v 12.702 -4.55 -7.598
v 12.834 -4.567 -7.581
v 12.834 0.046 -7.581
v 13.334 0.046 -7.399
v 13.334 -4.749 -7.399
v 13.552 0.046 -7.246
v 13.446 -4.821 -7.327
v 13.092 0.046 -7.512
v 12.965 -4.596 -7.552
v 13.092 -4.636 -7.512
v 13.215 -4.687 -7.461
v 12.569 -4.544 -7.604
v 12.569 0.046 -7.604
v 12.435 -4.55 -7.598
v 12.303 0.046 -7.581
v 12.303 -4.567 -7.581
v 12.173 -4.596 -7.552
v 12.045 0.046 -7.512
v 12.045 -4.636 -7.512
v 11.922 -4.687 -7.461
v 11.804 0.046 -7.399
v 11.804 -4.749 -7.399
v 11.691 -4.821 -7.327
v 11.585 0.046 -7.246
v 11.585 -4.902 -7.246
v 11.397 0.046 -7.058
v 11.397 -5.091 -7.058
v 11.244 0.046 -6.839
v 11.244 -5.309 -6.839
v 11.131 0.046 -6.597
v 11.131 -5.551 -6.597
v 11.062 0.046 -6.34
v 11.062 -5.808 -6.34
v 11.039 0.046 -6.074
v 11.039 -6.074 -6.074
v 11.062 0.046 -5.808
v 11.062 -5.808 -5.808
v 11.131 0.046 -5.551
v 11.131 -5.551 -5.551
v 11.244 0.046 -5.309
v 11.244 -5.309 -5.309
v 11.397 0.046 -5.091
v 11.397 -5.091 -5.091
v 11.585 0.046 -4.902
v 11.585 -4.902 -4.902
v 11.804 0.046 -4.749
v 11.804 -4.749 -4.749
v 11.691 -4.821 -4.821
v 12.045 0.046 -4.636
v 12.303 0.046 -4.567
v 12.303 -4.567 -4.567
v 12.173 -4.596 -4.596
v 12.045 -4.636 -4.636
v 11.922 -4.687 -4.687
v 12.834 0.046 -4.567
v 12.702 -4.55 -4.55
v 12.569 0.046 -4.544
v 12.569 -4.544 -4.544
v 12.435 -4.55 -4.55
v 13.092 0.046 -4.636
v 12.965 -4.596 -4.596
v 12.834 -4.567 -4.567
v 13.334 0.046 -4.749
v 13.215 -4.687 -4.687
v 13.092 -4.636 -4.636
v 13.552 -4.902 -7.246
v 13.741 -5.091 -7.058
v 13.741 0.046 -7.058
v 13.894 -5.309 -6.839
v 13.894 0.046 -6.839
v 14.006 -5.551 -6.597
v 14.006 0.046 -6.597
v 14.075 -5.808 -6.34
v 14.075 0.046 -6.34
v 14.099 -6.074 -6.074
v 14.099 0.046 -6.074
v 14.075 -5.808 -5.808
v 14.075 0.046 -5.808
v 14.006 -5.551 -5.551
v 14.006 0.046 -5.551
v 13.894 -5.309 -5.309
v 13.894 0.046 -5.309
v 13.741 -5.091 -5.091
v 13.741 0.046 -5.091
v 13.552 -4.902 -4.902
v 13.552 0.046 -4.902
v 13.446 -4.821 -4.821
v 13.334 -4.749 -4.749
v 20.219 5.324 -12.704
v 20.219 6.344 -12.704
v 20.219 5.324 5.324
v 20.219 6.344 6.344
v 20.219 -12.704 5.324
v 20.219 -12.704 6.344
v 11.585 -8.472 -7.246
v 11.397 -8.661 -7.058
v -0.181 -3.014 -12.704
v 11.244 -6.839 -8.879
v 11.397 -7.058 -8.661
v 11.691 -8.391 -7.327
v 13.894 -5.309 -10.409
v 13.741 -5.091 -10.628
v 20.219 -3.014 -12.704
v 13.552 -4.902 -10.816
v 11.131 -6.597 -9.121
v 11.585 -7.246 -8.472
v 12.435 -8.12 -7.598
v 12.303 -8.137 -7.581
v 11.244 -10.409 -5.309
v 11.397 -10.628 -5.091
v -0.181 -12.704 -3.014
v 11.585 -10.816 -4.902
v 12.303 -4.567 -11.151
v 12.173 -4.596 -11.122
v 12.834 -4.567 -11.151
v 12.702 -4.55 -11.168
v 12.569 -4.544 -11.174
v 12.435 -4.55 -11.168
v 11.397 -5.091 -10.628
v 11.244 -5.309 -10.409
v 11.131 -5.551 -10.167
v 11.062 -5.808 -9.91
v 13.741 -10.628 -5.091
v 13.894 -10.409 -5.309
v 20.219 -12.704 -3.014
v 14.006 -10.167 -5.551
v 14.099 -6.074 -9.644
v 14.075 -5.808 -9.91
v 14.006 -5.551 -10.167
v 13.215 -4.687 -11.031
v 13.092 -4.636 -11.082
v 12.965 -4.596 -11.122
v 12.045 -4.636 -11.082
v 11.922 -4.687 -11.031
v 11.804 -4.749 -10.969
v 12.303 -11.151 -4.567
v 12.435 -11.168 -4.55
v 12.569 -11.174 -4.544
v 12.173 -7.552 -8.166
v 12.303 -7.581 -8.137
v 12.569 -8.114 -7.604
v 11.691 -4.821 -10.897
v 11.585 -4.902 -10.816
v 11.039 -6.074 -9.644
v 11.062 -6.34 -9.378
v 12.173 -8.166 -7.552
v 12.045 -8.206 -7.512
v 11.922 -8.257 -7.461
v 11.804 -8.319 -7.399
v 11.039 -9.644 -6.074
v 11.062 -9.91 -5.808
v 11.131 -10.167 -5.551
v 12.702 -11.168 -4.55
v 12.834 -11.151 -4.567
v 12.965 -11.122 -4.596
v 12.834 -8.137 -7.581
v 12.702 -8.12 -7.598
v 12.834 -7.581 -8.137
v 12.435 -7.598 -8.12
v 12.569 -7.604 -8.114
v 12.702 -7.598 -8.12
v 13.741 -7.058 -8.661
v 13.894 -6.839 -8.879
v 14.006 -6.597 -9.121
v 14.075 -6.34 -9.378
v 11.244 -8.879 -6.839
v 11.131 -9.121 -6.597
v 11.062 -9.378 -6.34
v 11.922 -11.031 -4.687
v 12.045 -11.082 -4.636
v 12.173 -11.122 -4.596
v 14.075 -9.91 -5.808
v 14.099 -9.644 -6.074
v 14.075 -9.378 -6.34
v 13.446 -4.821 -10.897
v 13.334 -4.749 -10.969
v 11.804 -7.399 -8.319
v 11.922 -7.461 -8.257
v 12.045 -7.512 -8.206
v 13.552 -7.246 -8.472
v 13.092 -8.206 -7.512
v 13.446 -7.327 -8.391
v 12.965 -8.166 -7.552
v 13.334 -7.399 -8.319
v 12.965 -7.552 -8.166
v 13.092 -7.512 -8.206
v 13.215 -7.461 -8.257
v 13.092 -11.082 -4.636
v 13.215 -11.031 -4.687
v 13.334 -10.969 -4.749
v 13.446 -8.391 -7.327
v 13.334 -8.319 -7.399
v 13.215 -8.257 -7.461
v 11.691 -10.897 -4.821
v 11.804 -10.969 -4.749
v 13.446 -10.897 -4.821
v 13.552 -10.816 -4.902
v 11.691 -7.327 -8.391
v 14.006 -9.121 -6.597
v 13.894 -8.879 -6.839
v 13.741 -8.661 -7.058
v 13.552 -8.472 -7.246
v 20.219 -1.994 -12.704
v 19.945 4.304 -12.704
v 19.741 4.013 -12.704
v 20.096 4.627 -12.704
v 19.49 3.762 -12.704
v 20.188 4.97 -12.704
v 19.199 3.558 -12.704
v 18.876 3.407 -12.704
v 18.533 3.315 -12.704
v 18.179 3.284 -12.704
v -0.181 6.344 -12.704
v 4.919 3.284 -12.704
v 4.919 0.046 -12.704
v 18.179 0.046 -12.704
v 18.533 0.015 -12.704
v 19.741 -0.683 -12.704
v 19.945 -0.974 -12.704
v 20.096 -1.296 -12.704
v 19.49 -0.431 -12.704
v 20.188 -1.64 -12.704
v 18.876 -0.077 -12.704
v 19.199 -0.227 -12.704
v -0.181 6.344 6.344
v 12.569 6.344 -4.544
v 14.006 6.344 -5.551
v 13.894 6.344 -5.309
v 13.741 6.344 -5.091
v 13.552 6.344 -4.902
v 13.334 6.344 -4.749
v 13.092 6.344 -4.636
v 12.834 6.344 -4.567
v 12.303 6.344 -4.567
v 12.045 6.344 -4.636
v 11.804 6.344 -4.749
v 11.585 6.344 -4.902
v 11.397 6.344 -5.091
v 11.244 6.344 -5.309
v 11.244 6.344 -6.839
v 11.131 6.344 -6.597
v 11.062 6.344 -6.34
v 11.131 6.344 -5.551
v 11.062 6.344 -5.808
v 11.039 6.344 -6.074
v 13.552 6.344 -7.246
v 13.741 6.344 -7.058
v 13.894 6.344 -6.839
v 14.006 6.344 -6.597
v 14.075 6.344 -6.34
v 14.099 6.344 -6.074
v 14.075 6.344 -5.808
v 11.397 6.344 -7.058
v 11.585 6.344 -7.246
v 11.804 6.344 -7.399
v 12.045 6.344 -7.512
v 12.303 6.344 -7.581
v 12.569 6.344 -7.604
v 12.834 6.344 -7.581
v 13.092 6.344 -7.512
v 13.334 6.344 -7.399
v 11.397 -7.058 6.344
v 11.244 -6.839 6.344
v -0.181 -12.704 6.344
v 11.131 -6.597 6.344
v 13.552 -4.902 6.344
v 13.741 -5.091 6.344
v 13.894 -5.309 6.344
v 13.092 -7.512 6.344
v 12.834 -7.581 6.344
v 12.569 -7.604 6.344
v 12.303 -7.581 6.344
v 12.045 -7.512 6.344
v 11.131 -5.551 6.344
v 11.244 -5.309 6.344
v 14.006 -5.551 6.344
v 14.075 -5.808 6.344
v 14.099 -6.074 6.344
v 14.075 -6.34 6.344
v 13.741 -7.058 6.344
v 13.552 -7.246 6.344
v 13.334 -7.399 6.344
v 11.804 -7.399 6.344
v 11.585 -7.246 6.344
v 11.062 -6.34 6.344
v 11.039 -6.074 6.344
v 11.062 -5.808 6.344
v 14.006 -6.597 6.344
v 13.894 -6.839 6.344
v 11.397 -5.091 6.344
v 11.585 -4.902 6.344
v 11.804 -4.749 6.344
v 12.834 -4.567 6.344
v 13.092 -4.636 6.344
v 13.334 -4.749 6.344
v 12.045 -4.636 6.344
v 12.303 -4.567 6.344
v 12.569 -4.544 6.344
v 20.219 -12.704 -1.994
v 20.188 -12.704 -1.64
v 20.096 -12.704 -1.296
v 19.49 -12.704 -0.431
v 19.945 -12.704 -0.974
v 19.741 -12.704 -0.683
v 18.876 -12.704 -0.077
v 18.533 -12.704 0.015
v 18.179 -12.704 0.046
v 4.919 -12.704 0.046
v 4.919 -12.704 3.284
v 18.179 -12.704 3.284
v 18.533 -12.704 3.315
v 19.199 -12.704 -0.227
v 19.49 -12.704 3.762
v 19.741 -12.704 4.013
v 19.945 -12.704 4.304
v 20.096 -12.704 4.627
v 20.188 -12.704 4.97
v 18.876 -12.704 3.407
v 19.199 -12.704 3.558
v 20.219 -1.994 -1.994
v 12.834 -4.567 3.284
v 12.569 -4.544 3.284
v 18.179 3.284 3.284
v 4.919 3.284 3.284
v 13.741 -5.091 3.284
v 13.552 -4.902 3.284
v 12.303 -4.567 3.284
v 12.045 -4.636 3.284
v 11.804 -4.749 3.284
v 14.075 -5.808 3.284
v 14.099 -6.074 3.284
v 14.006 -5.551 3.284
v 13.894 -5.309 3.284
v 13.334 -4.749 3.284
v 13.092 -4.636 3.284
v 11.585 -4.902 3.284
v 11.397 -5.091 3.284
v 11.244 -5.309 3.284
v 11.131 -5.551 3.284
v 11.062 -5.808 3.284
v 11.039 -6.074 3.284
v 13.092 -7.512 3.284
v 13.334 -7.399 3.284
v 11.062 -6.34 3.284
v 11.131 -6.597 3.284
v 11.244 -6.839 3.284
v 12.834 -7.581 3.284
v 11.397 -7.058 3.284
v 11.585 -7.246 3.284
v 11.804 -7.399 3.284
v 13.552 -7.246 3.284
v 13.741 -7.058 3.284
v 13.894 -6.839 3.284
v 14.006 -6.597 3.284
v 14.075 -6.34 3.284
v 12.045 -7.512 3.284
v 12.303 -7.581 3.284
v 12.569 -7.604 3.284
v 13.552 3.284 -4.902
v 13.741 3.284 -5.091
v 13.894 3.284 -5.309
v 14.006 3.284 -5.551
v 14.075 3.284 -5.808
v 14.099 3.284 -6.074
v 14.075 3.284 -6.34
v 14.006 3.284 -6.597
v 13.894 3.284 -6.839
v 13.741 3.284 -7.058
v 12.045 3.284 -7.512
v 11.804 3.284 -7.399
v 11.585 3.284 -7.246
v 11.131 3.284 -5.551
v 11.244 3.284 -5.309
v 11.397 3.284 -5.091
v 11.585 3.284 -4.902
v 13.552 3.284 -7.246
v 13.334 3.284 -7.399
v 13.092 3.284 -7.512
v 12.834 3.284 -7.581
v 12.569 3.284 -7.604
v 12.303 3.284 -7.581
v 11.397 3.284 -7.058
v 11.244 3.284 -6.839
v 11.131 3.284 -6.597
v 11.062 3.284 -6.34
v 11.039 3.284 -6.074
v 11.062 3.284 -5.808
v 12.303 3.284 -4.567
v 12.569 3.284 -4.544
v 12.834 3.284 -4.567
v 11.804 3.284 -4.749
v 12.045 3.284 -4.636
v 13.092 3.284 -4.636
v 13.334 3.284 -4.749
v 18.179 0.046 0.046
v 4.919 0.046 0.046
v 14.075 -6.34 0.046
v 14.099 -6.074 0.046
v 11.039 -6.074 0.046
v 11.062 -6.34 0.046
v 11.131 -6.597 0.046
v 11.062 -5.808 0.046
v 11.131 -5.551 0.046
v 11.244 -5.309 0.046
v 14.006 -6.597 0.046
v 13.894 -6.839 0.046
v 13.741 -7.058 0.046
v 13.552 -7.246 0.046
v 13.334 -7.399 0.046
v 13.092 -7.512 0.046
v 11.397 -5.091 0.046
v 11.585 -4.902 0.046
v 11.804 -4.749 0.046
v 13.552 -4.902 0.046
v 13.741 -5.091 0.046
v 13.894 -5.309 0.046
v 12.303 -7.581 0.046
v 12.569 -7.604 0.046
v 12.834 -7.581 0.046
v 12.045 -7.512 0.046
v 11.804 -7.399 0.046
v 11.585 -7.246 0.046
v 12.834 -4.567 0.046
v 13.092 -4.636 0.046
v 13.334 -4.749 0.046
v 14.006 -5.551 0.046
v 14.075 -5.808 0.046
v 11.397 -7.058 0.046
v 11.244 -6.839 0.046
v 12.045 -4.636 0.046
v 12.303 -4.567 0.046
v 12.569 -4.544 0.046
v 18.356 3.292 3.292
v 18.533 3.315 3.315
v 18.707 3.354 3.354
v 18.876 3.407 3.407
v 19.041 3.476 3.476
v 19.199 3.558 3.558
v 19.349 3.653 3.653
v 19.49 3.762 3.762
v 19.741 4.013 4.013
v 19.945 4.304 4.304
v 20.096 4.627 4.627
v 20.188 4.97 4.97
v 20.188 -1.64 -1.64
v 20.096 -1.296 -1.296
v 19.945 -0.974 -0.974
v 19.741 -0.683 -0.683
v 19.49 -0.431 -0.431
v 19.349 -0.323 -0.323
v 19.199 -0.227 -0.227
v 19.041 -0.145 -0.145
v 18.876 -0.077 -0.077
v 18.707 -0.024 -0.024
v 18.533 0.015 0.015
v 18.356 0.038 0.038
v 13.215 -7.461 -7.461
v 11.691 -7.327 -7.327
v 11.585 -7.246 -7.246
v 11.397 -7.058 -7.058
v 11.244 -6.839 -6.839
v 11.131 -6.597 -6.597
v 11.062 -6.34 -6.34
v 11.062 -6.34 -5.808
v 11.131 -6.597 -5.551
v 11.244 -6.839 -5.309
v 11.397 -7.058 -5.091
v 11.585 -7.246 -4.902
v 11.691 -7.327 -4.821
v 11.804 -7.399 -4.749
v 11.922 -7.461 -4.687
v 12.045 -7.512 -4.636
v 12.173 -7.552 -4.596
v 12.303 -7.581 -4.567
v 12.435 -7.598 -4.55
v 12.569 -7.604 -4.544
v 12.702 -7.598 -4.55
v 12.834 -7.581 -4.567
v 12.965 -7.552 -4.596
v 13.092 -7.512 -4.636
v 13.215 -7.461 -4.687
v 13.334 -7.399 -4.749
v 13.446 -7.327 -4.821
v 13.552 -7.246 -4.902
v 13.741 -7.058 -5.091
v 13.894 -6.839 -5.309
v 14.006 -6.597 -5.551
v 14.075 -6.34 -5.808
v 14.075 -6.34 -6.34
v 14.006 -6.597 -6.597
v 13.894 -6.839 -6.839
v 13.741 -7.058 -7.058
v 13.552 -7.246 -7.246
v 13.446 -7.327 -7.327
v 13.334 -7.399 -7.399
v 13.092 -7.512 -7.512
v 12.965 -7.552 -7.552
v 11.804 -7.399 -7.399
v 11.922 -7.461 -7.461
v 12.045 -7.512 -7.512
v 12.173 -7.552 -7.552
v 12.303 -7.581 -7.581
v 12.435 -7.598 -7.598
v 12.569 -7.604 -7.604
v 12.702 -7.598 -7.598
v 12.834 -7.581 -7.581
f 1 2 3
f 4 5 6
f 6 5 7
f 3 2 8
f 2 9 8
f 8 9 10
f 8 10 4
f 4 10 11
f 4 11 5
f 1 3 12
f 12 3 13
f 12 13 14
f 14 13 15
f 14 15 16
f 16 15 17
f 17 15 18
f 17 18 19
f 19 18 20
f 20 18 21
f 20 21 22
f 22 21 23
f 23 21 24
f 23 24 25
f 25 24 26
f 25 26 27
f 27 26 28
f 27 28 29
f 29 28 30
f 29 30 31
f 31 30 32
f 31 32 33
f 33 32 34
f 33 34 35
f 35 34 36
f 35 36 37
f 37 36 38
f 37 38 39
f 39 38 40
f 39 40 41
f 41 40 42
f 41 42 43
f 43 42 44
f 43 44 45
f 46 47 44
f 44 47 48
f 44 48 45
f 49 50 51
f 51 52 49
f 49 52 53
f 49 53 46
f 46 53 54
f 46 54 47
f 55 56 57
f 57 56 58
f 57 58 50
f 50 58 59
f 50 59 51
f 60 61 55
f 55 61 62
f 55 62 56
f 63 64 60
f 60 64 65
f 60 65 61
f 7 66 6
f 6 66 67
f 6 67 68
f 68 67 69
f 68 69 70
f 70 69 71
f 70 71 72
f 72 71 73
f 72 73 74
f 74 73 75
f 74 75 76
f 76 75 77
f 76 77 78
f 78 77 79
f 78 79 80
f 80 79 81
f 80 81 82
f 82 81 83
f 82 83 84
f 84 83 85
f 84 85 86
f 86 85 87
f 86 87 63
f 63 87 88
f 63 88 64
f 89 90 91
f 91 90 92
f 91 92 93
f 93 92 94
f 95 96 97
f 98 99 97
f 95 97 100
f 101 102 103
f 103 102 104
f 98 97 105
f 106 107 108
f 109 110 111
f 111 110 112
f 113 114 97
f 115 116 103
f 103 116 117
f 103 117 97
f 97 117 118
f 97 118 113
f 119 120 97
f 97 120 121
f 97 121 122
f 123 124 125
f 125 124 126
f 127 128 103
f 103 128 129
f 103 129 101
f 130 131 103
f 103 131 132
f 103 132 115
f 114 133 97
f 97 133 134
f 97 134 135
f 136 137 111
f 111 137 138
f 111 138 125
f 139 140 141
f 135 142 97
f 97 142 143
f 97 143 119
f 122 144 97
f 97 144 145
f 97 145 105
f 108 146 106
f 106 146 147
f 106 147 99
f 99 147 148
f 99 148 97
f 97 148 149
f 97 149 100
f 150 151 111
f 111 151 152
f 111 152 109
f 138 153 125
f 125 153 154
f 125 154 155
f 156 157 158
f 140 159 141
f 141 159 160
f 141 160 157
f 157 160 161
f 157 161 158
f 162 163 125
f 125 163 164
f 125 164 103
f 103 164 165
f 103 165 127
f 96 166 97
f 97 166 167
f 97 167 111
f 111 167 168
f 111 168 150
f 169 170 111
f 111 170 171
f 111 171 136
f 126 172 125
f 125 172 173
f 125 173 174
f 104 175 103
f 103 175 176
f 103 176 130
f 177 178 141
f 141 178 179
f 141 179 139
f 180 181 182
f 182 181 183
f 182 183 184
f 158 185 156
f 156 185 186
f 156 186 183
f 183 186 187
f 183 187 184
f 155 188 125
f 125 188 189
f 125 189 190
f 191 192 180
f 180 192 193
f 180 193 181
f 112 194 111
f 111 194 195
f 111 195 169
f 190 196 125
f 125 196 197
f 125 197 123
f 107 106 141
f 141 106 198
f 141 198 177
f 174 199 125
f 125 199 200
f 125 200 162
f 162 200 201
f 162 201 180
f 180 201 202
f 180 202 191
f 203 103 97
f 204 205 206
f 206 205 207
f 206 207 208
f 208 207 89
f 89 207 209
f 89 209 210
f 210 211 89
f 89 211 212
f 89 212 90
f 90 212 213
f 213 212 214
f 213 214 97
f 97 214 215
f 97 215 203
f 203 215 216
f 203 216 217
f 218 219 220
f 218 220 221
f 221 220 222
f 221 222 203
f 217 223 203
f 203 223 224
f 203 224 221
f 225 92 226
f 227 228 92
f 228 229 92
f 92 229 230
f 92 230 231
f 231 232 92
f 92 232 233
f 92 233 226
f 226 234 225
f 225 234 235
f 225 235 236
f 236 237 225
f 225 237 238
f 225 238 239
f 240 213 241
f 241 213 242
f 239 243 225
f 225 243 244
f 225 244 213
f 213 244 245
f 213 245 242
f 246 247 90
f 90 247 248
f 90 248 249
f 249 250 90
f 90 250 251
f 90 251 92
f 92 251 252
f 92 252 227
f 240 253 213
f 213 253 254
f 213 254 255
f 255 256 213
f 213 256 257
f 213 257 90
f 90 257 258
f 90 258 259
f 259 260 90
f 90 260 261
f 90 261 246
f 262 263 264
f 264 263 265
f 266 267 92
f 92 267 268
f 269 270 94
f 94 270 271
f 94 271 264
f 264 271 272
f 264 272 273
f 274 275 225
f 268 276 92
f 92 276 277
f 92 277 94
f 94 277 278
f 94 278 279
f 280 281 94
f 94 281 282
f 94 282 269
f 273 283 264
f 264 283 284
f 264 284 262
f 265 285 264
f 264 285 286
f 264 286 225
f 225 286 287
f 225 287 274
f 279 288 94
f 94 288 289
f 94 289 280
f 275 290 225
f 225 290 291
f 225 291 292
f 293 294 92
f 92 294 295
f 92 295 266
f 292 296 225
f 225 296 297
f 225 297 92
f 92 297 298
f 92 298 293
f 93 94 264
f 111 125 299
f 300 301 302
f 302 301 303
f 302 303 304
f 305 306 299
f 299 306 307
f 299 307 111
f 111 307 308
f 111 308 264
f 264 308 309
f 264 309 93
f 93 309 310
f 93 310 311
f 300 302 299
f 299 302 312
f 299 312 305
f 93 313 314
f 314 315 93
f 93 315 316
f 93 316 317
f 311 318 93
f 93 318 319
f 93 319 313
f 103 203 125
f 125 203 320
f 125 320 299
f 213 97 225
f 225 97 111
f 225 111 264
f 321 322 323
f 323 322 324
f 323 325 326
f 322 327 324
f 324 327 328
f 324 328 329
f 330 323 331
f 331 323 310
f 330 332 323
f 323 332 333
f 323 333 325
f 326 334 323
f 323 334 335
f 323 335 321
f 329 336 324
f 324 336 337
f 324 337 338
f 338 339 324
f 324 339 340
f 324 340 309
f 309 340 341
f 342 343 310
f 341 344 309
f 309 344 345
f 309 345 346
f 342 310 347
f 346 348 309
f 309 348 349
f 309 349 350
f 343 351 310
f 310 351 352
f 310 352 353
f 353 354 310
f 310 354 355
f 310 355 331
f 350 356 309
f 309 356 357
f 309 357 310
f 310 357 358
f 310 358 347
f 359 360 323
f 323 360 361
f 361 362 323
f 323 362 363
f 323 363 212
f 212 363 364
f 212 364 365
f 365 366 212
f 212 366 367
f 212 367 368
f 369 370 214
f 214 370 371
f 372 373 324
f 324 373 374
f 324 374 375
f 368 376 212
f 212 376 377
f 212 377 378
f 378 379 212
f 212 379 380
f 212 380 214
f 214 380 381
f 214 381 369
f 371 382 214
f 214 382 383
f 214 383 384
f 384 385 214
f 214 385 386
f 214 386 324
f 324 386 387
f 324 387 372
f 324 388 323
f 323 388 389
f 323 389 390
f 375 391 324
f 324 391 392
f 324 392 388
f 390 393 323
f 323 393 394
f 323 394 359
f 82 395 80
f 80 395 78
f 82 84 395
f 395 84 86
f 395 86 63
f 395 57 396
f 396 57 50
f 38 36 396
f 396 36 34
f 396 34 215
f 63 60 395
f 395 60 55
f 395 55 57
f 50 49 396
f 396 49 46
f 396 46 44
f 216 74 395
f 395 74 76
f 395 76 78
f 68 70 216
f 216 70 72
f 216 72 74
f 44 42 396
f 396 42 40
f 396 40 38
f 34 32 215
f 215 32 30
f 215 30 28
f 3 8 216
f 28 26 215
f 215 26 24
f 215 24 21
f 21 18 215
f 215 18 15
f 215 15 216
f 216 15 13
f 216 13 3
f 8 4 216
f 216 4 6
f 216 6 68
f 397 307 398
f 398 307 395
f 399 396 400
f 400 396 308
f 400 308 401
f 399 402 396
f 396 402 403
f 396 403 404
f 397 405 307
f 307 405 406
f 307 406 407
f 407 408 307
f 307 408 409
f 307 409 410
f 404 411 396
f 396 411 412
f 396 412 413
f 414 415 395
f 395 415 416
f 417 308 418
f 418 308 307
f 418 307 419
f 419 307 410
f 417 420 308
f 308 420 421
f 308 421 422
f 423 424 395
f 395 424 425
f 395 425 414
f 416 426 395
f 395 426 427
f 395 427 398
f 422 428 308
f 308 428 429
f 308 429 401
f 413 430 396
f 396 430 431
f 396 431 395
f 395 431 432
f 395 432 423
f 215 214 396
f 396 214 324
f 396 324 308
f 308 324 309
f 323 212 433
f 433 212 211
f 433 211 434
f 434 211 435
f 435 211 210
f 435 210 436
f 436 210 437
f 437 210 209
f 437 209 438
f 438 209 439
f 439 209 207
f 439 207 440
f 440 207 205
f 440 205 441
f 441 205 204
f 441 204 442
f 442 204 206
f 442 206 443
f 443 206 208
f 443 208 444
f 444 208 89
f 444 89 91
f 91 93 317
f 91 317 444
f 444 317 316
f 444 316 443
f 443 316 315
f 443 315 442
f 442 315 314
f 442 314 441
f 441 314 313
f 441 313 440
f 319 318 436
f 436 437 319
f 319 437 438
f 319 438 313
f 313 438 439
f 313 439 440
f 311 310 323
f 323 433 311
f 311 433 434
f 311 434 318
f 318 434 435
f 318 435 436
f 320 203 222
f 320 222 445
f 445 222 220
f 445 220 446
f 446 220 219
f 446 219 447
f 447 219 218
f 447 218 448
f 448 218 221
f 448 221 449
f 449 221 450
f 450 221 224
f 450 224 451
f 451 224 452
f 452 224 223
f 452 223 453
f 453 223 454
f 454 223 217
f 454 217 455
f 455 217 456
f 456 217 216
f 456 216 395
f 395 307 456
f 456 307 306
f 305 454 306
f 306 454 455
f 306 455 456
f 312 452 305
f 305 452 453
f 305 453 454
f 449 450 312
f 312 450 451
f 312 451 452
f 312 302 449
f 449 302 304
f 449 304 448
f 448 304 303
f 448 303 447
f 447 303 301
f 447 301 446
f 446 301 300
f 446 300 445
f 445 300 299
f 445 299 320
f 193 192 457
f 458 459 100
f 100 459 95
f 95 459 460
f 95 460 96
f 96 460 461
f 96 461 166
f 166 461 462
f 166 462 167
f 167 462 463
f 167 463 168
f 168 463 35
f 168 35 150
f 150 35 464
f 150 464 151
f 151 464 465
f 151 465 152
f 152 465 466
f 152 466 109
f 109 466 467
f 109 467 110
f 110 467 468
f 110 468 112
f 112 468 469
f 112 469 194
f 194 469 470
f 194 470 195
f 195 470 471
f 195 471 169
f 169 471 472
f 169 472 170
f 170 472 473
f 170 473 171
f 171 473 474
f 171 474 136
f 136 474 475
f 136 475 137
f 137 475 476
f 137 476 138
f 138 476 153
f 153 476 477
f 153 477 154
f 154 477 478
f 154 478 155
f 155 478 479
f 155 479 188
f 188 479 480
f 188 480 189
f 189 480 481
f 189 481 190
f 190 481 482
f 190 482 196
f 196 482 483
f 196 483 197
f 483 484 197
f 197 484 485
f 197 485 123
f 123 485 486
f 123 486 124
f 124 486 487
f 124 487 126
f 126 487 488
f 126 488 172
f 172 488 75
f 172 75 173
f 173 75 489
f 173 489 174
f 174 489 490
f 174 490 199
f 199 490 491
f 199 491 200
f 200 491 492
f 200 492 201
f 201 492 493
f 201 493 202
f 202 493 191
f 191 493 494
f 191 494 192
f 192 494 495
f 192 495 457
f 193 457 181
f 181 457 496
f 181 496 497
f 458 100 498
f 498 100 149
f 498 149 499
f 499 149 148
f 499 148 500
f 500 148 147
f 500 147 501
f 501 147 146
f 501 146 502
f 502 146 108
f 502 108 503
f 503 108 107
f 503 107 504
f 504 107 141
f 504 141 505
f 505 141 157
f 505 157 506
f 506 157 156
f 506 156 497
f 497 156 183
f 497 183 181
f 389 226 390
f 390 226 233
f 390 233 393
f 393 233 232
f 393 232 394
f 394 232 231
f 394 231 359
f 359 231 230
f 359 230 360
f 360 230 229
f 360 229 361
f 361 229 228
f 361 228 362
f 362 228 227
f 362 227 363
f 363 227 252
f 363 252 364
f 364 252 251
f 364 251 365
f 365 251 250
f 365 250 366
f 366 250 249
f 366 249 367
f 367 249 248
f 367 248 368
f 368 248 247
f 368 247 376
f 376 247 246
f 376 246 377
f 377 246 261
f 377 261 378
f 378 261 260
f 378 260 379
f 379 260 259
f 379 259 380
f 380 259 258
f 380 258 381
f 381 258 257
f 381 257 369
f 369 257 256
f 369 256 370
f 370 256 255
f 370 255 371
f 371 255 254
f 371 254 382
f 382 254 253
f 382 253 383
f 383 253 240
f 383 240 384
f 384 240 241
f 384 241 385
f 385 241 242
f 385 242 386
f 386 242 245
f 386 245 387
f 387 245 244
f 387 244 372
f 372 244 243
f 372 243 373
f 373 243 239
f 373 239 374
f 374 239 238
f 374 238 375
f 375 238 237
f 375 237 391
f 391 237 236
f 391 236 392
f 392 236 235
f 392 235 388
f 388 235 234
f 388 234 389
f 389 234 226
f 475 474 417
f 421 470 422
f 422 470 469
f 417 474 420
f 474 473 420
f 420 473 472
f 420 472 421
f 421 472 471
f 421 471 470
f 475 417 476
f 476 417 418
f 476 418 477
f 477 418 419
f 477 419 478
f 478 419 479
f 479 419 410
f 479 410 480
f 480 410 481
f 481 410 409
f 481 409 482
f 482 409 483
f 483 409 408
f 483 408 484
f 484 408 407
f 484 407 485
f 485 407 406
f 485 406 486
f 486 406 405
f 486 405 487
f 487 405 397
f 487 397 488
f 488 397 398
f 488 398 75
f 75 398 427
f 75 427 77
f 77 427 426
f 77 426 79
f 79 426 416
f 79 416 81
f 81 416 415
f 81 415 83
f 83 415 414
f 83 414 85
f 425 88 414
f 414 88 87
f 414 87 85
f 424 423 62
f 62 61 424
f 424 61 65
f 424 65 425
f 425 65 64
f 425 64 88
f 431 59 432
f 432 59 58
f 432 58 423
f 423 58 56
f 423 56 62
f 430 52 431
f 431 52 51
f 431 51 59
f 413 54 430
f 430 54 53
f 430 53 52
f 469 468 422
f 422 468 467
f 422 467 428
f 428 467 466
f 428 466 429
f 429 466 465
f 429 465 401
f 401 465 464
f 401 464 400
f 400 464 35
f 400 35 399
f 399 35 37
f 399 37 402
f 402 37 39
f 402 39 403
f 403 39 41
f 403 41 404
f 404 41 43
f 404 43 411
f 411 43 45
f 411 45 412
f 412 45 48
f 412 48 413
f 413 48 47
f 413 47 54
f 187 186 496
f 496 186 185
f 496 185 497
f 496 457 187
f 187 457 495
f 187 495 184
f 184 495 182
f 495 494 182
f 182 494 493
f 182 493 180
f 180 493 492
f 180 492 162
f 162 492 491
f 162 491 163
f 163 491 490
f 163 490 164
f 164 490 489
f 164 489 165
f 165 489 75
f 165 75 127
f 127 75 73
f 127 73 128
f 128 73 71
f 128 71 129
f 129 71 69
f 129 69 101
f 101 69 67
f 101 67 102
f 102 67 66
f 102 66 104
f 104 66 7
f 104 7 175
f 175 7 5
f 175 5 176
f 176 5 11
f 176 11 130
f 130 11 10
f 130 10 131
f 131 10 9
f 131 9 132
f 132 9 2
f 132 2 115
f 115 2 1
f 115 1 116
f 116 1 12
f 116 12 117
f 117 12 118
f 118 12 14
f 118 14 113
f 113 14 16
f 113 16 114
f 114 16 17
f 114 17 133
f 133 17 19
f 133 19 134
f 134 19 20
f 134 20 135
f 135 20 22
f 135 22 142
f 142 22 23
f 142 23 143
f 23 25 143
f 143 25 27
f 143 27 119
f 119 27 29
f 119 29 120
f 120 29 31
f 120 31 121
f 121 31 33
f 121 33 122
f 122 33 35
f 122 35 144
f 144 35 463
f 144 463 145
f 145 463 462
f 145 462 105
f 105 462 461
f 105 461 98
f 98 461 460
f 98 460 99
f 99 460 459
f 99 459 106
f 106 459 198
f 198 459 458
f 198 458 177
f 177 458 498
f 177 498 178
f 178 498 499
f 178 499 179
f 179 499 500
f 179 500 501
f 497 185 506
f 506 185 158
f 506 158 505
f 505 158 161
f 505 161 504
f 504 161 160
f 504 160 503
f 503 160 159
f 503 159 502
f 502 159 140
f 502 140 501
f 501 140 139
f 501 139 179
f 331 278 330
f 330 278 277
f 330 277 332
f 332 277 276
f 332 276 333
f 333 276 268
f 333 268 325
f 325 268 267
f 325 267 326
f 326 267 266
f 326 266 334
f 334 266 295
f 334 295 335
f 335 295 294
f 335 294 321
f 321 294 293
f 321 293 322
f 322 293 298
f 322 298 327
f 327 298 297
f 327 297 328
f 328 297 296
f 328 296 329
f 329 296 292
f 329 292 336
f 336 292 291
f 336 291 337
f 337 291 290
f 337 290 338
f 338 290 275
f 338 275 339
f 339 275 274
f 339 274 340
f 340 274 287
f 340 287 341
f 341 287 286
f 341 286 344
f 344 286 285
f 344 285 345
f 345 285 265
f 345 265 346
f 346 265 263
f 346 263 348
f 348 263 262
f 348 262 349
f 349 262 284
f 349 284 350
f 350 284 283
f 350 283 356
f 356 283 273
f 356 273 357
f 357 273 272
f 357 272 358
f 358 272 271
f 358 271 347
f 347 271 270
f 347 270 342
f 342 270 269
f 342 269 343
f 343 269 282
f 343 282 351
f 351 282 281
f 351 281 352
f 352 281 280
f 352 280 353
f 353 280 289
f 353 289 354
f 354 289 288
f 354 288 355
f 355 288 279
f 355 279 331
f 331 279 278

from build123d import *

# Parameters (mm, degrees)
BOSS_EXTRUDE1_DEPTH = 20
CUT_EXTRUDE1_DEPTH  = 15
FILLET1_R           = 2
SKETCH3_R           = 1.5
CUT_EXTRUDE2_DEPTH  = 31.083311404
SKETCH4_R           = 1.5
CUT_EXTRUDE3_DEPTH  = 31.083311404
SCALE1_SCALE        = 1.02


with BuildPart() as part:
    # Sketch1 → Boss-Extrude1 (new body)
    with BuildSketch(Plane(origin=(0, 0, 0), x_dir=(0, 0, -1), z_dir=(1, 0, 0))):
        Polygon((0, -12.5), (-3.175, -12.5), (-6.175, -12.5), (-6.175, 6.175), (12.5, 6.175), (12.5, 3.175), (12.5, 0), (12.5, -3), (3, -12.5), align=None)
    extrude(amount=BOSS_EXTRUDE1_DEPTH)

    # Sketch2 → Cut-Extrude1 (cut)
    with BuildSketch(Plane(origin=(20, 0, 0), x_dir=(0, 0, -1), z_dir=(1, 0, 0))):
        Polygon((-3.175, -12.5), (0, -12.5), (0, 0), (12.5, 0), (12.5, 3.175), (-3.175, 3.175), align=None)
    extrude(amount=-CUT_EXTRUDE1_DEPTH, mode=Mode.SUBTRACT)

    # Fillet1
    fillet1_edges = [part.edges().sort_by_distance(p)[0] for p in [
        (20, -4.6625, 3.175),
        (20, -6.25, 0),
        (20, 0, -6.25),
        (20, 3.175, -4.6625),
    ]]
    fillet(fillet1_edges, radius=FILLET1_R)

    # Sketch3 → Cut-Extrude2 (cut, through all)
    with BuildSketch(Plane(origin=(0, 6.175, 0), x_dir=(1, 0, 0), z_dir=(0, 1, 0))):
        with Locations(Location((12.5, 6, 0), (0, 0, 90))):
            Circle(SKETCH3_R)
    extrude(amount=-CUT_EXTRUDE2_DEPTH, mode=Mode.SUBTRACT)

    # Sketch4 → Cut-Extrude3 (cut, through all)
    with BuildSketch(Plane.XY.offset(6.175)):
        with Locations((12.5, -6)):
            Circle(SKETCH4_R)
    extrude(amount=-CUT_EXTRUDE3_DEPTH, mode=Mode.SUBTRACT)


with BuildPart() as part_1:
    # Scale1: scaled about (9.068575954, -2.293993837, -2.293993837)
    add(part.part.scale(SCALE1_SCALE).moved(Location((-0.181371519, 0.045879877, 0.045879877))))


solid = part_1.part
